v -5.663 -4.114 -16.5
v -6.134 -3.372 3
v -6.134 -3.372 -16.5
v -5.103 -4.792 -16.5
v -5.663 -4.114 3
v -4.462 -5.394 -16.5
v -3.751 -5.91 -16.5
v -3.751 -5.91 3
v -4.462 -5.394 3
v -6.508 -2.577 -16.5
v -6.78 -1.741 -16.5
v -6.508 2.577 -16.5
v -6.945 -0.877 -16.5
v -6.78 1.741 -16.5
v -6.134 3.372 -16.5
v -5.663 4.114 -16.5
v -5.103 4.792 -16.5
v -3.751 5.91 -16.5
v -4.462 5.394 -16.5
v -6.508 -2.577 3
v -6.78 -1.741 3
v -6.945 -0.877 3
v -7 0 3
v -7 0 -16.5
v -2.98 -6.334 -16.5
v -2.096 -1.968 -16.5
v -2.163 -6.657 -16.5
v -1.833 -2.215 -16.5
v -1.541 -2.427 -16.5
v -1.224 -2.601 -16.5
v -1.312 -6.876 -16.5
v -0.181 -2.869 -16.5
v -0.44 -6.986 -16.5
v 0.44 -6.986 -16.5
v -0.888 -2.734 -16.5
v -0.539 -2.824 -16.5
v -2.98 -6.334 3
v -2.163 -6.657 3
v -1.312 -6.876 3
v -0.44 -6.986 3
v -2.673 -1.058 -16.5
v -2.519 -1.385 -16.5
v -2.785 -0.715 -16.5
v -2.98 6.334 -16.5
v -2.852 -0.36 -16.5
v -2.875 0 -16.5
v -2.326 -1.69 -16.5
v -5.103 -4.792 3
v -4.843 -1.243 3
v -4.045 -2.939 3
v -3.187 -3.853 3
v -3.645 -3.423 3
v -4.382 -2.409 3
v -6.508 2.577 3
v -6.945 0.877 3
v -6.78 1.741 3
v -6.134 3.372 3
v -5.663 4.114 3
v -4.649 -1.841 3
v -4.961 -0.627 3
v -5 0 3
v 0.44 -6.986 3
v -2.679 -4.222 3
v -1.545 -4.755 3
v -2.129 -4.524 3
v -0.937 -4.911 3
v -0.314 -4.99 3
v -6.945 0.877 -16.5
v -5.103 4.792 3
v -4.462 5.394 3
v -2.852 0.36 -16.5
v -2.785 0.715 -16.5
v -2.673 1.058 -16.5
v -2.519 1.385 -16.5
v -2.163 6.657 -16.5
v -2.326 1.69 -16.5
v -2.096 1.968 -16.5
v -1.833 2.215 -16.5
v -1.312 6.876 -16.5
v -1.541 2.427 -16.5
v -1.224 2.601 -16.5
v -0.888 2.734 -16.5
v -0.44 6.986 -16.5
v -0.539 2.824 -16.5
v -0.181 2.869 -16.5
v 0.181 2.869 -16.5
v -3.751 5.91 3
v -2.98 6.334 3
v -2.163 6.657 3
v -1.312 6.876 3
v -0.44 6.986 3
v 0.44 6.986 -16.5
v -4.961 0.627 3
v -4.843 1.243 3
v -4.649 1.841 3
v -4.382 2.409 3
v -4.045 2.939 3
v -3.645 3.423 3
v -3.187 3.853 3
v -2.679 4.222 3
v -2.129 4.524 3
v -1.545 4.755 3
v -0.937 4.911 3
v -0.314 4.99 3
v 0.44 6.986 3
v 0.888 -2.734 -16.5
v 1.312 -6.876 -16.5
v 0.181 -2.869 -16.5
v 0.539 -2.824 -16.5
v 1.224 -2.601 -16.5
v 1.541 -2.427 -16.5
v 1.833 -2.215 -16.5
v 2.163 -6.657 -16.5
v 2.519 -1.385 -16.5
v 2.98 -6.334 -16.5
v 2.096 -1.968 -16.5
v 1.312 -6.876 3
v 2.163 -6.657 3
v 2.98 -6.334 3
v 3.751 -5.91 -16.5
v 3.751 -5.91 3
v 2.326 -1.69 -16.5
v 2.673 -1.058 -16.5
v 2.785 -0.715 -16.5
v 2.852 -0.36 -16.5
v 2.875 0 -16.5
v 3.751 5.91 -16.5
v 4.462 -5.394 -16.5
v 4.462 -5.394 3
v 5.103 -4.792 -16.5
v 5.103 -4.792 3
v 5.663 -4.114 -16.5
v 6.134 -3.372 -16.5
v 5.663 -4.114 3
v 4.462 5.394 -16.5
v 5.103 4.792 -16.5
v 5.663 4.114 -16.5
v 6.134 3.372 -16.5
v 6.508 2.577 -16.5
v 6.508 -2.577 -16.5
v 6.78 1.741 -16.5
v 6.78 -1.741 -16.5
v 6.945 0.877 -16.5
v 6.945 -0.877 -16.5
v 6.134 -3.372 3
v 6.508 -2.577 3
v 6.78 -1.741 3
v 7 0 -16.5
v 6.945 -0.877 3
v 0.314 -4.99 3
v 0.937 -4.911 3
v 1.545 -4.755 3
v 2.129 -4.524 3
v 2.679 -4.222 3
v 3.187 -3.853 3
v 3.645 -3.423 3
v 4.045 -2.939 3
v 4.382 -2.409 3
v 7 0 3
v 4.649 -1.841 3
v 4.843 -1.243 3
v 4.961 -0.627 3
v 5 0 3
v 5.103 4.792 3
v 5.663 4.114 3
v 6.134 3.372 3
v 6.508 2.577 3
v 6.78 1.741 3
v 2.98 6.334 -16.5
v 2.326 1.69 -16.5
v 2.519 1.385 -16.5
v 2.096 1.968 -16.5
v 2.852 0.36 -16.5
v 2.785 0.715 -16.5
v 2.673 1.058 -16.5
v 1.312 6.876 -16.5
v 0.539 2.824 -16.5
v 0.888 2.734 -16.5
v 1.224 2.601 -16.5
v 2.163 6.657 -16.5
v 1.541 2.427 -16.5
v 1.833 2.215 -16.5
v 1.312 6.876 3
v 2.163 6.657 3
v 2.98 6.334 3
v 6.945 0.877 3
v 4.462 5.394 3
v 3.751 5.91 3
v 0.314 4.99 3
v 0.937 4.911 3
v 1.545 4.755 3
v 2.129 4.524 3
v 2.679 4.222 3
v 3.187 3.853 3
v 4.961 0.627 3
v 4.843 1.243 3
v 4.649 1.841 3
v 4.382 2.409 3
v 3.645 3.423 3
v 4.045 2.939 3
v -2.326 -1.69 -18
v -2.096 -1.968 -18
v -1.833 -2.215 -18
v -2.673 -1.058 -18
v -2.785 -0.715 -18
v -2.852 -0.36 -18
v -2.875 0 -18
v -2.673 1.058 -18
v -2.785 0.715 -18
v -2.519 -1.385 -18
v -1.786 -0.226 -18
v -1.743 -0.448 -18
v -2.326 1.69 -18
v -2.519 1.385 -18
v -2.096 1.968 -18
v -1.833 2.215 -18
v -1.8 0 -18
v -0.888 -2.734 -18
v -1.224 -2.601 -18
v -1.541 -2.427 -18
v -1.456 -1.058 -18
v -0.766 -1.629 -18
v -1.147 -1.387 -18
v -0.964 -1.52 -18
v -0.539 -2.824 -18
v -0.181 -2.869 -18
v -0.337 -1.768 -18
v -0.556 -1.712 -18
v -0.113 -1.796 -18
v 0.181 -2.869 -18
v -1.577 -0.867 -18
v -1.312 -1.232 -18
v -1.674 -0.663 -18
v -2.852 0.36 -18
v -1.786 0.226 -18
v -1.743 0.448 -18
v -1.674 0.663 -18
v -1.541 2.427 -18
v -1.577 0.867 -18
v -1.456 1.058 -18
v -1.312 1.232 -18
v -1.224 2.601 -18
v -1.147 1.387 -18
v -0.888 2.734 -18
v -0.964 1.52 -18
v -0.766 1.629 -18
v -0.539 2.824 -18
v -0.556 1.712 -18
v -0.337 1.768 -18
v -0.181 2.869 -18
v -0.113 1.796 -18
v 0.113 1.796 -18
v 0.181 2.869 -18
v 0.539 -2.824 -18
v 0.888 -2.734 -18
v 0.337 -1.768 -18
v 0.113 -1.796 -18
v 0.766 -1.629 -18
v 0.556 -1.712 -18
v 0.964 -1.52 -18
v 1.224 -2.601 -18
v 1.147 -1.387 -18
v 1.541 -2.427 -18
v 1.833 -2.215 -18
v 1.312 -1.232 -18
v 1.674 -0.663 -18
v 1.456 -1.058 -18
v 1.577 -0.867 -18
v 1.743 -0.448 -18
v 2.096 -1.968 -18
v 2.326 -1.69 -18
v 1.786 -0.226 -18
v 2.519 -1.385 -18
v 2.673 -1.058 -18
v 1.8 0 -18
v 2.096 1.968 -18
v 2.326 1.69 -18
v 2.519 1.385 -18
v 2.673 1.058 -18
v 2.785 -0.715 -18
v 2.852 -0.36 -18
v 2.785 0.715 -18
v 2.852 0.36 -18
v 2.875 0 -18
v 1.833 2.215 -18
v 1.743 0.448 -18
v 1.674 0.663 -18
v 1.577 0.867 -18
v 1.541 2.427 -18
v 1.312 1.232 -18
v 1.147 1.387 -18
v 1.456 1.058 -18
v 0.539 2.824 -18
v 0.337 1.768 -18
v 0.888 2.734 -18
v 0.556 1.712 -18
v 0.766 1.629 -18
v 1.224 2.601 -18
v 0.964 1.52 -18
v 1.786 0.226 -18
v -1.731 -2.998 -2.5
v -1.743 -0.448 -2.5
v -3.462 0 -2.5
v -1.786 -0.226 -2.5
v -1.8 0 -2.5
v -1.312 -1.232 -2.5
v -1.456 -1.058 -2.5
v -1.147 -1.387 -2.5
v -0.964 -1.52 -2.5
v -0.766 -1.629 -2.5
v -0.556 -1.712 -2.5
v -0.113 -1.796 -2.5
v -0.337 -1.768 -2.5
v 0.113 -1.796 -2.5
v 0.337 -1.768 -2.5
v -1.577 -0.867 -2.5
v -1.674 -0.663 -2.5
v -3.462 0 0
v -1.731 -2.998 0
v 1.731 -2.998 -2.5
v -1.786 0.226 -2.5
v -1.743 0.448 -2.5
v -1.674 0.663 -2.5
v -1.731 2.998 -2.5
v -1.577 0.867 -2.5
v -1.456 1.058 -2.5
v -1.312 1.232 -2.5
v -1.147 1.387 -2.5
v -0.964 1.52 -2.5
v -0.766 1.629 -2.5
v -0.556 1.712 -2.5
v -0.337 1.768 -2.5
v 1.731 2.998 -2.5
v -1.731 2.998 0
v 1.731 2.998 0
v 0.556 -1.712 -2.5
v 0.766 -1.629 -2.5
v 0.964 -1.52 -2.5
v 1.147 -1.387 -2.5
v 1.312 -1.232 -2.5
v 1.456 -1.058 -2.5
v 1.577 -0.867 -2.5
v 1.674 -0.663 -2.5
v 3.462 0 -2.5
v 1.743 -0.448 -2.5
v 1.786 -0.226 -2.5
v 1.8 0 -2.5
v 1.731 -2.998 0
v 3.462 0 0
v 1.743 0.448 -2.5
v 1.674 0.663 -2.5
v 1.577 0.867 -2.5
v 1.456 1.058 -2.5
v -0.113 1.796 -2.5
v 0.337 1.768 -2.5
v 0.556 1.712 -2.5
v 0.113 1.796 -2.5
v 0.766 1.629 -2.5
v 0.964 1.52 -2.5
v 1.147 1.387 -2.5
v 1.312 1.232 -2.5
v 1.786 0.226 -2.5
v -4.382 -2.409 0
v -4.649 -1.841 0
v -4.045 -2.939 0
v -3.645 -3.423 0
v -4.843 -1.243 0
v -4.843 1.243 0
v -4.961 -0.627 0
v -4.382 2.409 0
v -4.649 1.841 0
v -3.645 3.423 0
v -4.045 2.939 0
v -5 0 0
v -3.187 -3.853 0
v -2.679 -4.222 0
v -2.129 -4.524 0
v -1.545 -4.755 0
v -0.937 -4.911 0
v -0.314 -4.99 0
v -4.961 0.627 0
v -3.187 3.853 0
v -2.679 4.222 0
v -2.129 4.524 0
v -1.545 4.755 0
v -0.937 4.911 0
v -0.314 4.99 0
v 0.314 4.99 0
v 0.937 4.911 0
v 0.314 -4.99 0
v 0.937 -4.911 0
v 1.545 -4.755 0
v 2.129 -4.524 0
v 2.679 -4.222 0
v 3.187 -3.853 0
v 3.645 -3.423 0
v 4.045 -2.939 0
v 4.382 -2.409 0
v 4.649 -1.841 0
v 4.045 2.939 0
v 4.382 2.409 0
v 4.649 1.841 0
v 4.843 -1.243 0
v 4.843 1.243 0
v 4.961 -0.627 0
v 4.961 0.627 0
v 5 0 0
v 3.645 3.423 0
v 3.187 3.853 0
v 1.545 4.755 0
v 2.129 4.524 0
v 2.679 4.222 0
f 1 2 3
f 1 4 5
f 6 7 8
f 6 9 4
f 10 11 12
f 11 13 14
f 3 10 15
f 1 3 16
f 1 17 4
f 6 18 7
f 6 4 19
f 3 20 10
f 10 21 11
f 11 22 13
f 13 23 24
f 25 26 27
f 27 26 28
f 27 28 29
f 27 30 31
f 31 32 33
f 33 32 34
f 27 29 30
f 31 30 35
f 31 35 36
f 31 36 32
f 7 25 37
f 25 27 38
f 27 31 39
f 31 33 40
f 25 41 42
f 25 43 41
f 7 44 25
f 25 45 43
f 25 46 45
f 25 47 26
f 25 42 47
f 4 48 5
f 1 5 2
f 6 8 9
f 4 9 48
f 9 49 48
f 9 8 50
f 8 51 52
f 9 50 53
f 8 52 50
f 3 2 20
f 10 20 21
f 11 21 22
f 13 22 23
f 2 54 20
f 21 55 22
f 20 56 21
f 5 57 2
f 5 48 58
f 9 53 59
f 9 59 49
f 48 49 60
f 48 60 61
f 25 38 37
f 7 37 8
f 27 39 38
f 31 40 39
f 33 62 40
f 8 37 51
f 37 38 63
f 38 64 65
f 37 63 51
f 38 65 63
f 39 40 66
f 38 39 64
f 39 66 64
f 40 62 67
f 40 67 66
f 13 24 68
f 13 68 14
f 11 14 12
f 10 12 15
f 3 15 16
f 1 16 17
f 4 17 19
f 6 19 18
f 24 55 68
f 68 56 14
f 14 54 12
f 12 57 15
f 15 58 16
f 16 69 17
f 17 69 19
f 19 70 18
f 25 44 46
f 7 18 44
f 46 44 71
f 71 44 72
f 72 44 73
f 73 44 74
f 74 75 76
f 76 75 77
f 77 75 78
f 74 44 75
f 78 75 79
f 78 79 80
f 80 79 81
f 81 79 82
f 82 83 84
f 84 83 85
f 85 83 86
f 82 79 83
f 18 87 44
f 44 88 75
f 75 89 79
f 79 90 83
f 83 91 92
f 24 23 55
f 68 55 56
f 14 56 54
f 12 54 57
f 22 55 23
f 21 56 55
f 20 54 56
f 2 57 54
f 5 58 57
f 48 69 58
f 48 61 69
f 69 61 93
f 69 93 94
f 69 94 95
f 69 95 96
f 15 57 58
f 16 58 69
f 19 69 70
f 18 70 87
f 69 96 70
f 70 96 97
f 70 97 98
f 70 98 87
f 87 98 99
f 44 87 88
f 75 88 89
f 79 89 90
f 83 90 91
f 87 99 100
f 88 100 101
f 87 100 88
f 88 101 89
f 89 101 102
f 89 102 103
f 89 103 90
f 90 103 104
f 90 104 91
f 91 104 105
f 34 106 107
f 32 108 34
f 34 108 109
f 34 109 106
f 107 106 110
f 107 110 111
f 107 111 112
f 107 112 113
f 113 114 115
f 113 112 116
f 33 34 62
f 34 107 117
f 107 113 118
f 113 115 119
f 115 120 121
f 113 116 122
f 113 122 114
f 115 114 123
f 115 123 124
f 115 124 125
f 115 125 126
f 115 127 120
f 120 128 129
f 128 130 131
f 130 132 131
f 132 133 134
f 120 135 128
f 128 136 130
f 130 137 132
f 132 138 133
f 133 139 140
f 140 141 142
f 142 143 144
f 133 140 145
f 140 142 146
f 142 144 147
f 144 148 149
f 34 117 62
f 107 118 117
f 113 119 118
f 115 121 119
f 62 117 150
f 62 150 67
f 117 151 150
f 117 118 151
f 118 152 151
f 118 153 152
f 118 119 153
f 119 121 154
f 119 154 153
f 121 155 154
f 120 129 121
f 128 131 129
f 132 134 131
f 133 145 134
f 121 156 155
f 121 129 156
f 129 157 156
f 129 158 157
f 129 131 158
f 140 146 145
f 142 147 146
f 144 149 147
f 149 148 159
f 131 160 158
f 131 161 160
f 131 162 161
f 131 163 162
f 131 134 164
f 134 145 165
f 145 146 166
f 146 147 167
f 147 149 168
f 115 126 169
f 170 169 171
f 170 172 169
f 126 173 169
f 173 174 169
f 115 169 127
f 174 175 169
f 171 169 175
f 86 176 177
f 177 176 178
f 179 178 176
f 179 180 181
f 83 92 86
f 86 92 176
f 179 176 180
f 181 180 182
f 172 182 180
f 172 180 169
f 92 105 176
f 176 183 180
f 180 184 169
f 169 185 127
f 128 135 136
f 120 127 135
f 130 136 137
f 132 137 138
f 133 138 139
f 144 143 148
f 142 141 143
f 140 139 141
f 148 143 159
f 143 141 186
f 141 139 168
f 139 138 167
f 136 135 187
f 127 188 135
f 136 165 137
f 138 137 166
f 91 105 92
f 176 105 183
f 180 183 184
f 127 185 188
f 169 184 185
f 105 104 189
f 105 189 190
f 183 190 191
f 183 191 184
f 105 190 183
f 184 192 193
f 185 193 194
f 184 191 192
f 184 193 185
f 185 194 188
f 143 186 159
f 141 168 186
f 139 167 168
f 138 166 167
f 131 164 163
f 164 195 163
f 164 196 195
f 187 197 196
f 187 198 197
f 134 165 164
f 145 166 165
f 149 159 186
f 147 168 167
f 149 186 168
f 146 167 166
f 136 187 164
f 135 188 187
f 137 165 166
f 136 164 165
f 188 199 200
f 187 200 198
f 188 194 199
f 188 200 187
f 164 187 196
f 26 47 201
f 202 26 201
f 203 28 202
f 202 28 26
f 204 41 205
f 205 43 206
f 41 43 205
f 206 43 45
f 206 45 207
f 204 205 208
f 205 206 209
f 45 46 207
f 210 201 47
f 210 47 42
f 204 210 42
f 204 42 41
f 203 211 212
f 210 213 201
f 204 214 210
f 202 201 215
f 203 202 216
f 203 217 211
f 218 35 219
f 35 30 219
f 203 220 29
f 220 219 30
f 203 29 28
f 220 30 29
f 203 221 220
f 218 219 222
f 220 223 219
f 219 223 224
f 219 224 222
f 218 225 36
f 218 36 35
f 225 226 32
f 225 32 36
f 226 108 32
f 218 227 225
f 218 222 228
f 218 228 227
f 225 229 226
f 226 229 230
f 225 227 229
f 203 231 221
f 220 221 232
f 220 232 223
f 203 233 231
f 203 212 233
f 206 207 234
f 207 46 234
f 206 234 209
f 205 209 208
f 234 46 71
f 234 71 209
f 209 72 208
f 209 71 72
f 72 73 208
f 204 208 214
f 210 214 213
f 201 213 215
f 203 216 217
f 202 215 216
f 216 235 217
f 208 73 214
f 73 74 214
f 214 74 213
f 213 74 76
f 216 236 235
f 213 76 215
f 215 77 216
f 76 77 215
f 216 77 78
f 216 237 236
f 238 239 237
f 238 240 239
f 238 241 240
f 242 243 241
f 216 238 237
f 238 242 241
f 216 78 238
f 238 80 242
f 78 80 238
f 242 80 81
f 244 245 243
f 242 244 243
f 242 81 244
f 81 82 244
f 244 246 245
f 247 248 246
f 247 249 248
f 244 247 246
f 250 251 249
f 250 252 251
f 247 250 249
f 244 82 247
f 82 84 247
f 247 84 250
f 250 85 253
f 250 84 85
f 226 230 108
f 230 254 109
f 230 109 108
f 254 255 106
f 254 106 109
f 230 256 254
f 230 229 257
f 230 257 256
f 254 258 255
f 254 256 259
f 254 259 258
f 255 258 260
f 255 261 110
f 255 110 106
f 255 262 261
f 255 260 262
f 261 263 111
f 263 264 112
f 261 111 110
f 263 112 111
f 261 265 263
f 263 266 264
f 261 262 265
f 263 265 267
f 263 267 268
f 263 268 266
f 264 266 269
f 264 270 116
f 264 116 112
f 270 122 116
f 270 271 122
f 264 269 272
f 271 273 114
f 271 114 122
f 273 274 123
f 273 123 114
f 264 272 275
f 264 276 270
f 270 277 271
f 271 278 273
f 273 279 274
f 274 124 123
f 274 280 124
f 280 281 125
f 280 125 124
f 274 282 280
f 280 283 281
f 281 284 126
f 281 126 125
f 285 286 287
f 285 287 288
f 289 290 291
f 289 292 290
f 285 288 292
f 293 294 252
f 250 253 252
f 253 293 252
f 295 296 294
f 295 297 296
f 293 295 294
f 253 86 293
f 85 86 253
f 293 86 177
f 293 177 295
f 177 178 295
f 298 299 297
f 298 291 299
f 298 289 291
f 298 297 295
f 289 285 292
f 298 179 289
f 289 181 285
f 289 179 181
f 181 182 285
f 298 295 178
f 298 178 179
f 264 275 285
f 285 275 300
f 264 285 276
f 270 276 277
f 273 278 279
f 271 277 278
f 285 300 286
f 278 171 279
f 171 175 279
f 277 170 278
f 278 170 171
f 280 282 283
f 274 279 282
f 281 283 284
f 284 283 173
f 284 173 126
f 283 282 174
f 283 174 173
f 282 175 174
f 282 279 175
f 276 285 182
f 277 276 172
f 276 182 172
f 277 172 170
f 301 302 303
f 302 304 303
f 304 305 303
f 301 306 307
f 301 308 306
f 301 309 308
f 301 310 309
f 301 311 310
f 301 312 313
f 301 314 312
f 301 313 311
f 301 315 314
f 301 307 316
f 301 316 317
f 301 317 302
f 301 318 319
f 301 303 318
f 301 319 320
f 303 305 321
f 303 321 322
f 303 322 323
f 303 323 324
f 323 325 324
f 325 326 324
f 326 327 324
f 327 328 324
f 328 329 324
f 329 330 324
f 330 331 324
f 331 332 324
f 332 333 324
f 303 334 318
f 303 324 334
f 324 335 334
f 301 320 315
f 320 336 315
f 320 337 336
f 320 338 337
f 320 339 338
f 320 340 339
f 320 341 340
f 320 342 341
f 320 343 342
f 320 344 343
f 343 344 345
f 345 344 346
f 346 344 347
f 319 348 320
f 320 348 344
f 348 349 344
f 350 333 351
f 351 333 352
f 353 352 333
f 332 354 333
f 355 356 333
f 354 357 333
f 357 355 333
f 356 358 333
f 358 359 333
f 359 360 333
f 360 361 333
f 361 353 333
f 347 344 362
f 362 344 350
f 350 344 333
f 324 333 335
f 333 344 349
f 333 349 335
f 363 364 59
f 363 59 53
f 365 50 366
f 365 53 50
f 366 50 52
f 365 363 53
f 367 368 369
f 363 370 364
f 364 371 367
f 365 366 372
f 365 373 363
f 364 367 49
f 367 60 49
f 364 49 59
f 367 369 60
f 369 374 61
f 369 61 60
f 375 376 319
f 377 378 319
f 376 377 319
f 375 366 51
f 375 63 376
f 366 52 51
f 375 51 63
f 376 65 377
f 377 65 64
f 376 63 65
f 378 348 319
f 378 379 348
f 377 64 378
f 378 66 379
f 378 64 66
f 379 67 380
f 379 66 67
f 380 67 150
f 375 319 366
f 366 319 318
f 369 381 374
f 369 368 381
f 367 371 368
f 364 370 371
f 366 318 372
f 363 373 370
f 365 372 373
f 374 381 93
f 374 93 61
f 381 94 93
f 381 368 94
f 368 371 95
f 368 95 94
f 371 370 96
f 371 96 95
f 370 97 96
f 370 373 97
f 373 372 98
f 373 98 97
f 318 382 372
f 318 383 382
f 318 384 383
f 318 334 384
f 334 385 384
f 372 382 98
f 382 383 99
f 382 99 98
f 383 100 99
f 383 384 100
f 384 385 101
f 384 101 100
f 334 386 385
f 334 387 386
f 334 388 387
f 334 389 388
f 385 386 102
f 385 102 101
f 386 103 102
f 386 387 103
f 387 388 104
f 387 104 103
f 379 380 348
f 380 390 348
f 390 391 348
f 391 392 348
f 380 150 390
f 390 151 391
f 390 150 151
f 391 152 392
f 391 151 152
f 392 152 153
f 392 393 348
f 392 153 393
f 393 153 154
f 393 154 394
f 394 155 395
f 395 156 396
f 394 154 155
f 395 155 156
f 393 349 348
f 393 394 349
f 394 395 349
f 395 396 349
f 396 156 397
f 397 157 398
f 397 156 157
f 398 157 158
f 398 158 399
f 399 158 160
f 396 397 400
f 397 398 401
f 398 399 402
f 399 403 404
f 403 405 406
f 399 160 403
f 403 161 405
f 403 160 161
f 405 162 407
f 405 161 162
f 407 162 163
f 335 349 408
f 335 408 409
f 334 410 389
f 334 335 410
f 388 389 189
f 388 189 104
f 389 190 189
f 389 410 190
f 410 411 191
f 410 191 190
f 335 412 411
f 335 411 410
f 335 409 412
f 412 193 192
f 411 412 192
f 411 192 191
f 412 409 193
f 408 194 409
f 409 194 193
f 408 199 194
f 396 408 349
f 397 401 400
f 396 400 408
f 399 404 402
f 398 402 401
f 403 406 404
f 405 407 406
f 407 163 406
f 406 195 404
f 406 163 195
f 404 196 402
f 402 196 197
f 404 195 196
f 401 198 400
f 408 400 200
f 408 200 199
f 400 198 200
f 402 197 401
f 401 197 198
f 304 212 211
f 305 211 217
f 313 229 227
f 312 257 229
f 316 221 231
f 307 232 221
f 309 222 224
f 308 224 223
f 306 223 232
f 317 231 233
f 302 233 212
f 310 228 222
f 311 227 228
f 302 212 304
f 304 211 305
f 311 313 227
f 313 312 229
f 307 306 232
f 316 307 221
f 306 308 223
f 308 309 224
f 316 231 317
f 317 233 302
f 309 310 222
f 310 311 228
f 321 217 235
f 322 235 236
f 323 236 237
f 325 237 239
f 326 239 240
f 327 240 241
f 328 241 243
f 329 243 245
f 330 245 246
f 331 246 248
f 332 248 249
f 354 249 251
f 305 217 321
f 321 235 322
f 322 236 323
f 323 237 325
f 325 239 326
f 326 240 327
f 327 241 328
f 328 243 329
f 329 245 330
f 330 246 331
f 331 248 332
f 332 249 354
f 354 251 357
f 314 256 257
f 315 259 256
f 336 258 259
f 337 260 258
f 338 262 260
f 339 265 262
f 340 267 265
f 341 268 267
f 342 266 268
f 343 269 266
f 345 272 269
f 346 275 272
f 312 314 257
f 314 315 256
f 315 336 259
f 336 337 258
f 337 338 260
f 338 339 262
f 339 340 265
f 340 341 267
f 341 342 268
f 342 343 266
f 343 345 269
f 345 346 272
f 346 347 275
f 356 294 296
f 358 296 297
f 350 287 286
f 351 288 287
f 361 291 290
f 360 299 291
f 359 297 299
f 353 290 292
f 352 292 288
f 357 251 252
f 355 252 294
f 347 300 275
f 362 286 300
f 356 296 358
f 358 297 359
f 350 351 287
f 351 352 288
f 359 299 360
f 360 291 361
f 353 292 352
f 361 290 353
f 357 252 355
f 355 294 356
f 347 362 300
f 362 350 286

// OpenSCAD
$fn = 50;


difference() {
	union() {
		translate(v = [0, 0, -16.5000000000]) {
			cylinder(h = 19.5000000000, r = 7.0000000000);
		}
		#translate(v = [0, 0, -18.0000000000]) {
			cylinder(h = 18, r = 2.8750000000);
		}
	}
	union() {
		translate(v = [0, 0, 0]) {
			rotate(a = [0, 0, 0]) {
				difference() {
					union() {
						translate(v = [0, 0, -2.5000000000]) {
							linear_extrude(height = 2.5000000000) {
								polygon(points = [[3.4620000000, 0.0000000000], [1.7310000000, 2.9981799479], [-1.7310000000, 2.9981799479], [-3.4620000000, 0.0000000000], [-1.7310000000, -2.9981799479], [1.7310000000, -2.9981799479]]);
							}
						}
					}
					union();
				}
			}
		}
		#cylinder(h = 3, r = 5.0000000000);
		#translate(v = [0, 0, -100.0000000000]) {
			cylinder(h = 200, r = 1.8000000000);
		}
	}
}
